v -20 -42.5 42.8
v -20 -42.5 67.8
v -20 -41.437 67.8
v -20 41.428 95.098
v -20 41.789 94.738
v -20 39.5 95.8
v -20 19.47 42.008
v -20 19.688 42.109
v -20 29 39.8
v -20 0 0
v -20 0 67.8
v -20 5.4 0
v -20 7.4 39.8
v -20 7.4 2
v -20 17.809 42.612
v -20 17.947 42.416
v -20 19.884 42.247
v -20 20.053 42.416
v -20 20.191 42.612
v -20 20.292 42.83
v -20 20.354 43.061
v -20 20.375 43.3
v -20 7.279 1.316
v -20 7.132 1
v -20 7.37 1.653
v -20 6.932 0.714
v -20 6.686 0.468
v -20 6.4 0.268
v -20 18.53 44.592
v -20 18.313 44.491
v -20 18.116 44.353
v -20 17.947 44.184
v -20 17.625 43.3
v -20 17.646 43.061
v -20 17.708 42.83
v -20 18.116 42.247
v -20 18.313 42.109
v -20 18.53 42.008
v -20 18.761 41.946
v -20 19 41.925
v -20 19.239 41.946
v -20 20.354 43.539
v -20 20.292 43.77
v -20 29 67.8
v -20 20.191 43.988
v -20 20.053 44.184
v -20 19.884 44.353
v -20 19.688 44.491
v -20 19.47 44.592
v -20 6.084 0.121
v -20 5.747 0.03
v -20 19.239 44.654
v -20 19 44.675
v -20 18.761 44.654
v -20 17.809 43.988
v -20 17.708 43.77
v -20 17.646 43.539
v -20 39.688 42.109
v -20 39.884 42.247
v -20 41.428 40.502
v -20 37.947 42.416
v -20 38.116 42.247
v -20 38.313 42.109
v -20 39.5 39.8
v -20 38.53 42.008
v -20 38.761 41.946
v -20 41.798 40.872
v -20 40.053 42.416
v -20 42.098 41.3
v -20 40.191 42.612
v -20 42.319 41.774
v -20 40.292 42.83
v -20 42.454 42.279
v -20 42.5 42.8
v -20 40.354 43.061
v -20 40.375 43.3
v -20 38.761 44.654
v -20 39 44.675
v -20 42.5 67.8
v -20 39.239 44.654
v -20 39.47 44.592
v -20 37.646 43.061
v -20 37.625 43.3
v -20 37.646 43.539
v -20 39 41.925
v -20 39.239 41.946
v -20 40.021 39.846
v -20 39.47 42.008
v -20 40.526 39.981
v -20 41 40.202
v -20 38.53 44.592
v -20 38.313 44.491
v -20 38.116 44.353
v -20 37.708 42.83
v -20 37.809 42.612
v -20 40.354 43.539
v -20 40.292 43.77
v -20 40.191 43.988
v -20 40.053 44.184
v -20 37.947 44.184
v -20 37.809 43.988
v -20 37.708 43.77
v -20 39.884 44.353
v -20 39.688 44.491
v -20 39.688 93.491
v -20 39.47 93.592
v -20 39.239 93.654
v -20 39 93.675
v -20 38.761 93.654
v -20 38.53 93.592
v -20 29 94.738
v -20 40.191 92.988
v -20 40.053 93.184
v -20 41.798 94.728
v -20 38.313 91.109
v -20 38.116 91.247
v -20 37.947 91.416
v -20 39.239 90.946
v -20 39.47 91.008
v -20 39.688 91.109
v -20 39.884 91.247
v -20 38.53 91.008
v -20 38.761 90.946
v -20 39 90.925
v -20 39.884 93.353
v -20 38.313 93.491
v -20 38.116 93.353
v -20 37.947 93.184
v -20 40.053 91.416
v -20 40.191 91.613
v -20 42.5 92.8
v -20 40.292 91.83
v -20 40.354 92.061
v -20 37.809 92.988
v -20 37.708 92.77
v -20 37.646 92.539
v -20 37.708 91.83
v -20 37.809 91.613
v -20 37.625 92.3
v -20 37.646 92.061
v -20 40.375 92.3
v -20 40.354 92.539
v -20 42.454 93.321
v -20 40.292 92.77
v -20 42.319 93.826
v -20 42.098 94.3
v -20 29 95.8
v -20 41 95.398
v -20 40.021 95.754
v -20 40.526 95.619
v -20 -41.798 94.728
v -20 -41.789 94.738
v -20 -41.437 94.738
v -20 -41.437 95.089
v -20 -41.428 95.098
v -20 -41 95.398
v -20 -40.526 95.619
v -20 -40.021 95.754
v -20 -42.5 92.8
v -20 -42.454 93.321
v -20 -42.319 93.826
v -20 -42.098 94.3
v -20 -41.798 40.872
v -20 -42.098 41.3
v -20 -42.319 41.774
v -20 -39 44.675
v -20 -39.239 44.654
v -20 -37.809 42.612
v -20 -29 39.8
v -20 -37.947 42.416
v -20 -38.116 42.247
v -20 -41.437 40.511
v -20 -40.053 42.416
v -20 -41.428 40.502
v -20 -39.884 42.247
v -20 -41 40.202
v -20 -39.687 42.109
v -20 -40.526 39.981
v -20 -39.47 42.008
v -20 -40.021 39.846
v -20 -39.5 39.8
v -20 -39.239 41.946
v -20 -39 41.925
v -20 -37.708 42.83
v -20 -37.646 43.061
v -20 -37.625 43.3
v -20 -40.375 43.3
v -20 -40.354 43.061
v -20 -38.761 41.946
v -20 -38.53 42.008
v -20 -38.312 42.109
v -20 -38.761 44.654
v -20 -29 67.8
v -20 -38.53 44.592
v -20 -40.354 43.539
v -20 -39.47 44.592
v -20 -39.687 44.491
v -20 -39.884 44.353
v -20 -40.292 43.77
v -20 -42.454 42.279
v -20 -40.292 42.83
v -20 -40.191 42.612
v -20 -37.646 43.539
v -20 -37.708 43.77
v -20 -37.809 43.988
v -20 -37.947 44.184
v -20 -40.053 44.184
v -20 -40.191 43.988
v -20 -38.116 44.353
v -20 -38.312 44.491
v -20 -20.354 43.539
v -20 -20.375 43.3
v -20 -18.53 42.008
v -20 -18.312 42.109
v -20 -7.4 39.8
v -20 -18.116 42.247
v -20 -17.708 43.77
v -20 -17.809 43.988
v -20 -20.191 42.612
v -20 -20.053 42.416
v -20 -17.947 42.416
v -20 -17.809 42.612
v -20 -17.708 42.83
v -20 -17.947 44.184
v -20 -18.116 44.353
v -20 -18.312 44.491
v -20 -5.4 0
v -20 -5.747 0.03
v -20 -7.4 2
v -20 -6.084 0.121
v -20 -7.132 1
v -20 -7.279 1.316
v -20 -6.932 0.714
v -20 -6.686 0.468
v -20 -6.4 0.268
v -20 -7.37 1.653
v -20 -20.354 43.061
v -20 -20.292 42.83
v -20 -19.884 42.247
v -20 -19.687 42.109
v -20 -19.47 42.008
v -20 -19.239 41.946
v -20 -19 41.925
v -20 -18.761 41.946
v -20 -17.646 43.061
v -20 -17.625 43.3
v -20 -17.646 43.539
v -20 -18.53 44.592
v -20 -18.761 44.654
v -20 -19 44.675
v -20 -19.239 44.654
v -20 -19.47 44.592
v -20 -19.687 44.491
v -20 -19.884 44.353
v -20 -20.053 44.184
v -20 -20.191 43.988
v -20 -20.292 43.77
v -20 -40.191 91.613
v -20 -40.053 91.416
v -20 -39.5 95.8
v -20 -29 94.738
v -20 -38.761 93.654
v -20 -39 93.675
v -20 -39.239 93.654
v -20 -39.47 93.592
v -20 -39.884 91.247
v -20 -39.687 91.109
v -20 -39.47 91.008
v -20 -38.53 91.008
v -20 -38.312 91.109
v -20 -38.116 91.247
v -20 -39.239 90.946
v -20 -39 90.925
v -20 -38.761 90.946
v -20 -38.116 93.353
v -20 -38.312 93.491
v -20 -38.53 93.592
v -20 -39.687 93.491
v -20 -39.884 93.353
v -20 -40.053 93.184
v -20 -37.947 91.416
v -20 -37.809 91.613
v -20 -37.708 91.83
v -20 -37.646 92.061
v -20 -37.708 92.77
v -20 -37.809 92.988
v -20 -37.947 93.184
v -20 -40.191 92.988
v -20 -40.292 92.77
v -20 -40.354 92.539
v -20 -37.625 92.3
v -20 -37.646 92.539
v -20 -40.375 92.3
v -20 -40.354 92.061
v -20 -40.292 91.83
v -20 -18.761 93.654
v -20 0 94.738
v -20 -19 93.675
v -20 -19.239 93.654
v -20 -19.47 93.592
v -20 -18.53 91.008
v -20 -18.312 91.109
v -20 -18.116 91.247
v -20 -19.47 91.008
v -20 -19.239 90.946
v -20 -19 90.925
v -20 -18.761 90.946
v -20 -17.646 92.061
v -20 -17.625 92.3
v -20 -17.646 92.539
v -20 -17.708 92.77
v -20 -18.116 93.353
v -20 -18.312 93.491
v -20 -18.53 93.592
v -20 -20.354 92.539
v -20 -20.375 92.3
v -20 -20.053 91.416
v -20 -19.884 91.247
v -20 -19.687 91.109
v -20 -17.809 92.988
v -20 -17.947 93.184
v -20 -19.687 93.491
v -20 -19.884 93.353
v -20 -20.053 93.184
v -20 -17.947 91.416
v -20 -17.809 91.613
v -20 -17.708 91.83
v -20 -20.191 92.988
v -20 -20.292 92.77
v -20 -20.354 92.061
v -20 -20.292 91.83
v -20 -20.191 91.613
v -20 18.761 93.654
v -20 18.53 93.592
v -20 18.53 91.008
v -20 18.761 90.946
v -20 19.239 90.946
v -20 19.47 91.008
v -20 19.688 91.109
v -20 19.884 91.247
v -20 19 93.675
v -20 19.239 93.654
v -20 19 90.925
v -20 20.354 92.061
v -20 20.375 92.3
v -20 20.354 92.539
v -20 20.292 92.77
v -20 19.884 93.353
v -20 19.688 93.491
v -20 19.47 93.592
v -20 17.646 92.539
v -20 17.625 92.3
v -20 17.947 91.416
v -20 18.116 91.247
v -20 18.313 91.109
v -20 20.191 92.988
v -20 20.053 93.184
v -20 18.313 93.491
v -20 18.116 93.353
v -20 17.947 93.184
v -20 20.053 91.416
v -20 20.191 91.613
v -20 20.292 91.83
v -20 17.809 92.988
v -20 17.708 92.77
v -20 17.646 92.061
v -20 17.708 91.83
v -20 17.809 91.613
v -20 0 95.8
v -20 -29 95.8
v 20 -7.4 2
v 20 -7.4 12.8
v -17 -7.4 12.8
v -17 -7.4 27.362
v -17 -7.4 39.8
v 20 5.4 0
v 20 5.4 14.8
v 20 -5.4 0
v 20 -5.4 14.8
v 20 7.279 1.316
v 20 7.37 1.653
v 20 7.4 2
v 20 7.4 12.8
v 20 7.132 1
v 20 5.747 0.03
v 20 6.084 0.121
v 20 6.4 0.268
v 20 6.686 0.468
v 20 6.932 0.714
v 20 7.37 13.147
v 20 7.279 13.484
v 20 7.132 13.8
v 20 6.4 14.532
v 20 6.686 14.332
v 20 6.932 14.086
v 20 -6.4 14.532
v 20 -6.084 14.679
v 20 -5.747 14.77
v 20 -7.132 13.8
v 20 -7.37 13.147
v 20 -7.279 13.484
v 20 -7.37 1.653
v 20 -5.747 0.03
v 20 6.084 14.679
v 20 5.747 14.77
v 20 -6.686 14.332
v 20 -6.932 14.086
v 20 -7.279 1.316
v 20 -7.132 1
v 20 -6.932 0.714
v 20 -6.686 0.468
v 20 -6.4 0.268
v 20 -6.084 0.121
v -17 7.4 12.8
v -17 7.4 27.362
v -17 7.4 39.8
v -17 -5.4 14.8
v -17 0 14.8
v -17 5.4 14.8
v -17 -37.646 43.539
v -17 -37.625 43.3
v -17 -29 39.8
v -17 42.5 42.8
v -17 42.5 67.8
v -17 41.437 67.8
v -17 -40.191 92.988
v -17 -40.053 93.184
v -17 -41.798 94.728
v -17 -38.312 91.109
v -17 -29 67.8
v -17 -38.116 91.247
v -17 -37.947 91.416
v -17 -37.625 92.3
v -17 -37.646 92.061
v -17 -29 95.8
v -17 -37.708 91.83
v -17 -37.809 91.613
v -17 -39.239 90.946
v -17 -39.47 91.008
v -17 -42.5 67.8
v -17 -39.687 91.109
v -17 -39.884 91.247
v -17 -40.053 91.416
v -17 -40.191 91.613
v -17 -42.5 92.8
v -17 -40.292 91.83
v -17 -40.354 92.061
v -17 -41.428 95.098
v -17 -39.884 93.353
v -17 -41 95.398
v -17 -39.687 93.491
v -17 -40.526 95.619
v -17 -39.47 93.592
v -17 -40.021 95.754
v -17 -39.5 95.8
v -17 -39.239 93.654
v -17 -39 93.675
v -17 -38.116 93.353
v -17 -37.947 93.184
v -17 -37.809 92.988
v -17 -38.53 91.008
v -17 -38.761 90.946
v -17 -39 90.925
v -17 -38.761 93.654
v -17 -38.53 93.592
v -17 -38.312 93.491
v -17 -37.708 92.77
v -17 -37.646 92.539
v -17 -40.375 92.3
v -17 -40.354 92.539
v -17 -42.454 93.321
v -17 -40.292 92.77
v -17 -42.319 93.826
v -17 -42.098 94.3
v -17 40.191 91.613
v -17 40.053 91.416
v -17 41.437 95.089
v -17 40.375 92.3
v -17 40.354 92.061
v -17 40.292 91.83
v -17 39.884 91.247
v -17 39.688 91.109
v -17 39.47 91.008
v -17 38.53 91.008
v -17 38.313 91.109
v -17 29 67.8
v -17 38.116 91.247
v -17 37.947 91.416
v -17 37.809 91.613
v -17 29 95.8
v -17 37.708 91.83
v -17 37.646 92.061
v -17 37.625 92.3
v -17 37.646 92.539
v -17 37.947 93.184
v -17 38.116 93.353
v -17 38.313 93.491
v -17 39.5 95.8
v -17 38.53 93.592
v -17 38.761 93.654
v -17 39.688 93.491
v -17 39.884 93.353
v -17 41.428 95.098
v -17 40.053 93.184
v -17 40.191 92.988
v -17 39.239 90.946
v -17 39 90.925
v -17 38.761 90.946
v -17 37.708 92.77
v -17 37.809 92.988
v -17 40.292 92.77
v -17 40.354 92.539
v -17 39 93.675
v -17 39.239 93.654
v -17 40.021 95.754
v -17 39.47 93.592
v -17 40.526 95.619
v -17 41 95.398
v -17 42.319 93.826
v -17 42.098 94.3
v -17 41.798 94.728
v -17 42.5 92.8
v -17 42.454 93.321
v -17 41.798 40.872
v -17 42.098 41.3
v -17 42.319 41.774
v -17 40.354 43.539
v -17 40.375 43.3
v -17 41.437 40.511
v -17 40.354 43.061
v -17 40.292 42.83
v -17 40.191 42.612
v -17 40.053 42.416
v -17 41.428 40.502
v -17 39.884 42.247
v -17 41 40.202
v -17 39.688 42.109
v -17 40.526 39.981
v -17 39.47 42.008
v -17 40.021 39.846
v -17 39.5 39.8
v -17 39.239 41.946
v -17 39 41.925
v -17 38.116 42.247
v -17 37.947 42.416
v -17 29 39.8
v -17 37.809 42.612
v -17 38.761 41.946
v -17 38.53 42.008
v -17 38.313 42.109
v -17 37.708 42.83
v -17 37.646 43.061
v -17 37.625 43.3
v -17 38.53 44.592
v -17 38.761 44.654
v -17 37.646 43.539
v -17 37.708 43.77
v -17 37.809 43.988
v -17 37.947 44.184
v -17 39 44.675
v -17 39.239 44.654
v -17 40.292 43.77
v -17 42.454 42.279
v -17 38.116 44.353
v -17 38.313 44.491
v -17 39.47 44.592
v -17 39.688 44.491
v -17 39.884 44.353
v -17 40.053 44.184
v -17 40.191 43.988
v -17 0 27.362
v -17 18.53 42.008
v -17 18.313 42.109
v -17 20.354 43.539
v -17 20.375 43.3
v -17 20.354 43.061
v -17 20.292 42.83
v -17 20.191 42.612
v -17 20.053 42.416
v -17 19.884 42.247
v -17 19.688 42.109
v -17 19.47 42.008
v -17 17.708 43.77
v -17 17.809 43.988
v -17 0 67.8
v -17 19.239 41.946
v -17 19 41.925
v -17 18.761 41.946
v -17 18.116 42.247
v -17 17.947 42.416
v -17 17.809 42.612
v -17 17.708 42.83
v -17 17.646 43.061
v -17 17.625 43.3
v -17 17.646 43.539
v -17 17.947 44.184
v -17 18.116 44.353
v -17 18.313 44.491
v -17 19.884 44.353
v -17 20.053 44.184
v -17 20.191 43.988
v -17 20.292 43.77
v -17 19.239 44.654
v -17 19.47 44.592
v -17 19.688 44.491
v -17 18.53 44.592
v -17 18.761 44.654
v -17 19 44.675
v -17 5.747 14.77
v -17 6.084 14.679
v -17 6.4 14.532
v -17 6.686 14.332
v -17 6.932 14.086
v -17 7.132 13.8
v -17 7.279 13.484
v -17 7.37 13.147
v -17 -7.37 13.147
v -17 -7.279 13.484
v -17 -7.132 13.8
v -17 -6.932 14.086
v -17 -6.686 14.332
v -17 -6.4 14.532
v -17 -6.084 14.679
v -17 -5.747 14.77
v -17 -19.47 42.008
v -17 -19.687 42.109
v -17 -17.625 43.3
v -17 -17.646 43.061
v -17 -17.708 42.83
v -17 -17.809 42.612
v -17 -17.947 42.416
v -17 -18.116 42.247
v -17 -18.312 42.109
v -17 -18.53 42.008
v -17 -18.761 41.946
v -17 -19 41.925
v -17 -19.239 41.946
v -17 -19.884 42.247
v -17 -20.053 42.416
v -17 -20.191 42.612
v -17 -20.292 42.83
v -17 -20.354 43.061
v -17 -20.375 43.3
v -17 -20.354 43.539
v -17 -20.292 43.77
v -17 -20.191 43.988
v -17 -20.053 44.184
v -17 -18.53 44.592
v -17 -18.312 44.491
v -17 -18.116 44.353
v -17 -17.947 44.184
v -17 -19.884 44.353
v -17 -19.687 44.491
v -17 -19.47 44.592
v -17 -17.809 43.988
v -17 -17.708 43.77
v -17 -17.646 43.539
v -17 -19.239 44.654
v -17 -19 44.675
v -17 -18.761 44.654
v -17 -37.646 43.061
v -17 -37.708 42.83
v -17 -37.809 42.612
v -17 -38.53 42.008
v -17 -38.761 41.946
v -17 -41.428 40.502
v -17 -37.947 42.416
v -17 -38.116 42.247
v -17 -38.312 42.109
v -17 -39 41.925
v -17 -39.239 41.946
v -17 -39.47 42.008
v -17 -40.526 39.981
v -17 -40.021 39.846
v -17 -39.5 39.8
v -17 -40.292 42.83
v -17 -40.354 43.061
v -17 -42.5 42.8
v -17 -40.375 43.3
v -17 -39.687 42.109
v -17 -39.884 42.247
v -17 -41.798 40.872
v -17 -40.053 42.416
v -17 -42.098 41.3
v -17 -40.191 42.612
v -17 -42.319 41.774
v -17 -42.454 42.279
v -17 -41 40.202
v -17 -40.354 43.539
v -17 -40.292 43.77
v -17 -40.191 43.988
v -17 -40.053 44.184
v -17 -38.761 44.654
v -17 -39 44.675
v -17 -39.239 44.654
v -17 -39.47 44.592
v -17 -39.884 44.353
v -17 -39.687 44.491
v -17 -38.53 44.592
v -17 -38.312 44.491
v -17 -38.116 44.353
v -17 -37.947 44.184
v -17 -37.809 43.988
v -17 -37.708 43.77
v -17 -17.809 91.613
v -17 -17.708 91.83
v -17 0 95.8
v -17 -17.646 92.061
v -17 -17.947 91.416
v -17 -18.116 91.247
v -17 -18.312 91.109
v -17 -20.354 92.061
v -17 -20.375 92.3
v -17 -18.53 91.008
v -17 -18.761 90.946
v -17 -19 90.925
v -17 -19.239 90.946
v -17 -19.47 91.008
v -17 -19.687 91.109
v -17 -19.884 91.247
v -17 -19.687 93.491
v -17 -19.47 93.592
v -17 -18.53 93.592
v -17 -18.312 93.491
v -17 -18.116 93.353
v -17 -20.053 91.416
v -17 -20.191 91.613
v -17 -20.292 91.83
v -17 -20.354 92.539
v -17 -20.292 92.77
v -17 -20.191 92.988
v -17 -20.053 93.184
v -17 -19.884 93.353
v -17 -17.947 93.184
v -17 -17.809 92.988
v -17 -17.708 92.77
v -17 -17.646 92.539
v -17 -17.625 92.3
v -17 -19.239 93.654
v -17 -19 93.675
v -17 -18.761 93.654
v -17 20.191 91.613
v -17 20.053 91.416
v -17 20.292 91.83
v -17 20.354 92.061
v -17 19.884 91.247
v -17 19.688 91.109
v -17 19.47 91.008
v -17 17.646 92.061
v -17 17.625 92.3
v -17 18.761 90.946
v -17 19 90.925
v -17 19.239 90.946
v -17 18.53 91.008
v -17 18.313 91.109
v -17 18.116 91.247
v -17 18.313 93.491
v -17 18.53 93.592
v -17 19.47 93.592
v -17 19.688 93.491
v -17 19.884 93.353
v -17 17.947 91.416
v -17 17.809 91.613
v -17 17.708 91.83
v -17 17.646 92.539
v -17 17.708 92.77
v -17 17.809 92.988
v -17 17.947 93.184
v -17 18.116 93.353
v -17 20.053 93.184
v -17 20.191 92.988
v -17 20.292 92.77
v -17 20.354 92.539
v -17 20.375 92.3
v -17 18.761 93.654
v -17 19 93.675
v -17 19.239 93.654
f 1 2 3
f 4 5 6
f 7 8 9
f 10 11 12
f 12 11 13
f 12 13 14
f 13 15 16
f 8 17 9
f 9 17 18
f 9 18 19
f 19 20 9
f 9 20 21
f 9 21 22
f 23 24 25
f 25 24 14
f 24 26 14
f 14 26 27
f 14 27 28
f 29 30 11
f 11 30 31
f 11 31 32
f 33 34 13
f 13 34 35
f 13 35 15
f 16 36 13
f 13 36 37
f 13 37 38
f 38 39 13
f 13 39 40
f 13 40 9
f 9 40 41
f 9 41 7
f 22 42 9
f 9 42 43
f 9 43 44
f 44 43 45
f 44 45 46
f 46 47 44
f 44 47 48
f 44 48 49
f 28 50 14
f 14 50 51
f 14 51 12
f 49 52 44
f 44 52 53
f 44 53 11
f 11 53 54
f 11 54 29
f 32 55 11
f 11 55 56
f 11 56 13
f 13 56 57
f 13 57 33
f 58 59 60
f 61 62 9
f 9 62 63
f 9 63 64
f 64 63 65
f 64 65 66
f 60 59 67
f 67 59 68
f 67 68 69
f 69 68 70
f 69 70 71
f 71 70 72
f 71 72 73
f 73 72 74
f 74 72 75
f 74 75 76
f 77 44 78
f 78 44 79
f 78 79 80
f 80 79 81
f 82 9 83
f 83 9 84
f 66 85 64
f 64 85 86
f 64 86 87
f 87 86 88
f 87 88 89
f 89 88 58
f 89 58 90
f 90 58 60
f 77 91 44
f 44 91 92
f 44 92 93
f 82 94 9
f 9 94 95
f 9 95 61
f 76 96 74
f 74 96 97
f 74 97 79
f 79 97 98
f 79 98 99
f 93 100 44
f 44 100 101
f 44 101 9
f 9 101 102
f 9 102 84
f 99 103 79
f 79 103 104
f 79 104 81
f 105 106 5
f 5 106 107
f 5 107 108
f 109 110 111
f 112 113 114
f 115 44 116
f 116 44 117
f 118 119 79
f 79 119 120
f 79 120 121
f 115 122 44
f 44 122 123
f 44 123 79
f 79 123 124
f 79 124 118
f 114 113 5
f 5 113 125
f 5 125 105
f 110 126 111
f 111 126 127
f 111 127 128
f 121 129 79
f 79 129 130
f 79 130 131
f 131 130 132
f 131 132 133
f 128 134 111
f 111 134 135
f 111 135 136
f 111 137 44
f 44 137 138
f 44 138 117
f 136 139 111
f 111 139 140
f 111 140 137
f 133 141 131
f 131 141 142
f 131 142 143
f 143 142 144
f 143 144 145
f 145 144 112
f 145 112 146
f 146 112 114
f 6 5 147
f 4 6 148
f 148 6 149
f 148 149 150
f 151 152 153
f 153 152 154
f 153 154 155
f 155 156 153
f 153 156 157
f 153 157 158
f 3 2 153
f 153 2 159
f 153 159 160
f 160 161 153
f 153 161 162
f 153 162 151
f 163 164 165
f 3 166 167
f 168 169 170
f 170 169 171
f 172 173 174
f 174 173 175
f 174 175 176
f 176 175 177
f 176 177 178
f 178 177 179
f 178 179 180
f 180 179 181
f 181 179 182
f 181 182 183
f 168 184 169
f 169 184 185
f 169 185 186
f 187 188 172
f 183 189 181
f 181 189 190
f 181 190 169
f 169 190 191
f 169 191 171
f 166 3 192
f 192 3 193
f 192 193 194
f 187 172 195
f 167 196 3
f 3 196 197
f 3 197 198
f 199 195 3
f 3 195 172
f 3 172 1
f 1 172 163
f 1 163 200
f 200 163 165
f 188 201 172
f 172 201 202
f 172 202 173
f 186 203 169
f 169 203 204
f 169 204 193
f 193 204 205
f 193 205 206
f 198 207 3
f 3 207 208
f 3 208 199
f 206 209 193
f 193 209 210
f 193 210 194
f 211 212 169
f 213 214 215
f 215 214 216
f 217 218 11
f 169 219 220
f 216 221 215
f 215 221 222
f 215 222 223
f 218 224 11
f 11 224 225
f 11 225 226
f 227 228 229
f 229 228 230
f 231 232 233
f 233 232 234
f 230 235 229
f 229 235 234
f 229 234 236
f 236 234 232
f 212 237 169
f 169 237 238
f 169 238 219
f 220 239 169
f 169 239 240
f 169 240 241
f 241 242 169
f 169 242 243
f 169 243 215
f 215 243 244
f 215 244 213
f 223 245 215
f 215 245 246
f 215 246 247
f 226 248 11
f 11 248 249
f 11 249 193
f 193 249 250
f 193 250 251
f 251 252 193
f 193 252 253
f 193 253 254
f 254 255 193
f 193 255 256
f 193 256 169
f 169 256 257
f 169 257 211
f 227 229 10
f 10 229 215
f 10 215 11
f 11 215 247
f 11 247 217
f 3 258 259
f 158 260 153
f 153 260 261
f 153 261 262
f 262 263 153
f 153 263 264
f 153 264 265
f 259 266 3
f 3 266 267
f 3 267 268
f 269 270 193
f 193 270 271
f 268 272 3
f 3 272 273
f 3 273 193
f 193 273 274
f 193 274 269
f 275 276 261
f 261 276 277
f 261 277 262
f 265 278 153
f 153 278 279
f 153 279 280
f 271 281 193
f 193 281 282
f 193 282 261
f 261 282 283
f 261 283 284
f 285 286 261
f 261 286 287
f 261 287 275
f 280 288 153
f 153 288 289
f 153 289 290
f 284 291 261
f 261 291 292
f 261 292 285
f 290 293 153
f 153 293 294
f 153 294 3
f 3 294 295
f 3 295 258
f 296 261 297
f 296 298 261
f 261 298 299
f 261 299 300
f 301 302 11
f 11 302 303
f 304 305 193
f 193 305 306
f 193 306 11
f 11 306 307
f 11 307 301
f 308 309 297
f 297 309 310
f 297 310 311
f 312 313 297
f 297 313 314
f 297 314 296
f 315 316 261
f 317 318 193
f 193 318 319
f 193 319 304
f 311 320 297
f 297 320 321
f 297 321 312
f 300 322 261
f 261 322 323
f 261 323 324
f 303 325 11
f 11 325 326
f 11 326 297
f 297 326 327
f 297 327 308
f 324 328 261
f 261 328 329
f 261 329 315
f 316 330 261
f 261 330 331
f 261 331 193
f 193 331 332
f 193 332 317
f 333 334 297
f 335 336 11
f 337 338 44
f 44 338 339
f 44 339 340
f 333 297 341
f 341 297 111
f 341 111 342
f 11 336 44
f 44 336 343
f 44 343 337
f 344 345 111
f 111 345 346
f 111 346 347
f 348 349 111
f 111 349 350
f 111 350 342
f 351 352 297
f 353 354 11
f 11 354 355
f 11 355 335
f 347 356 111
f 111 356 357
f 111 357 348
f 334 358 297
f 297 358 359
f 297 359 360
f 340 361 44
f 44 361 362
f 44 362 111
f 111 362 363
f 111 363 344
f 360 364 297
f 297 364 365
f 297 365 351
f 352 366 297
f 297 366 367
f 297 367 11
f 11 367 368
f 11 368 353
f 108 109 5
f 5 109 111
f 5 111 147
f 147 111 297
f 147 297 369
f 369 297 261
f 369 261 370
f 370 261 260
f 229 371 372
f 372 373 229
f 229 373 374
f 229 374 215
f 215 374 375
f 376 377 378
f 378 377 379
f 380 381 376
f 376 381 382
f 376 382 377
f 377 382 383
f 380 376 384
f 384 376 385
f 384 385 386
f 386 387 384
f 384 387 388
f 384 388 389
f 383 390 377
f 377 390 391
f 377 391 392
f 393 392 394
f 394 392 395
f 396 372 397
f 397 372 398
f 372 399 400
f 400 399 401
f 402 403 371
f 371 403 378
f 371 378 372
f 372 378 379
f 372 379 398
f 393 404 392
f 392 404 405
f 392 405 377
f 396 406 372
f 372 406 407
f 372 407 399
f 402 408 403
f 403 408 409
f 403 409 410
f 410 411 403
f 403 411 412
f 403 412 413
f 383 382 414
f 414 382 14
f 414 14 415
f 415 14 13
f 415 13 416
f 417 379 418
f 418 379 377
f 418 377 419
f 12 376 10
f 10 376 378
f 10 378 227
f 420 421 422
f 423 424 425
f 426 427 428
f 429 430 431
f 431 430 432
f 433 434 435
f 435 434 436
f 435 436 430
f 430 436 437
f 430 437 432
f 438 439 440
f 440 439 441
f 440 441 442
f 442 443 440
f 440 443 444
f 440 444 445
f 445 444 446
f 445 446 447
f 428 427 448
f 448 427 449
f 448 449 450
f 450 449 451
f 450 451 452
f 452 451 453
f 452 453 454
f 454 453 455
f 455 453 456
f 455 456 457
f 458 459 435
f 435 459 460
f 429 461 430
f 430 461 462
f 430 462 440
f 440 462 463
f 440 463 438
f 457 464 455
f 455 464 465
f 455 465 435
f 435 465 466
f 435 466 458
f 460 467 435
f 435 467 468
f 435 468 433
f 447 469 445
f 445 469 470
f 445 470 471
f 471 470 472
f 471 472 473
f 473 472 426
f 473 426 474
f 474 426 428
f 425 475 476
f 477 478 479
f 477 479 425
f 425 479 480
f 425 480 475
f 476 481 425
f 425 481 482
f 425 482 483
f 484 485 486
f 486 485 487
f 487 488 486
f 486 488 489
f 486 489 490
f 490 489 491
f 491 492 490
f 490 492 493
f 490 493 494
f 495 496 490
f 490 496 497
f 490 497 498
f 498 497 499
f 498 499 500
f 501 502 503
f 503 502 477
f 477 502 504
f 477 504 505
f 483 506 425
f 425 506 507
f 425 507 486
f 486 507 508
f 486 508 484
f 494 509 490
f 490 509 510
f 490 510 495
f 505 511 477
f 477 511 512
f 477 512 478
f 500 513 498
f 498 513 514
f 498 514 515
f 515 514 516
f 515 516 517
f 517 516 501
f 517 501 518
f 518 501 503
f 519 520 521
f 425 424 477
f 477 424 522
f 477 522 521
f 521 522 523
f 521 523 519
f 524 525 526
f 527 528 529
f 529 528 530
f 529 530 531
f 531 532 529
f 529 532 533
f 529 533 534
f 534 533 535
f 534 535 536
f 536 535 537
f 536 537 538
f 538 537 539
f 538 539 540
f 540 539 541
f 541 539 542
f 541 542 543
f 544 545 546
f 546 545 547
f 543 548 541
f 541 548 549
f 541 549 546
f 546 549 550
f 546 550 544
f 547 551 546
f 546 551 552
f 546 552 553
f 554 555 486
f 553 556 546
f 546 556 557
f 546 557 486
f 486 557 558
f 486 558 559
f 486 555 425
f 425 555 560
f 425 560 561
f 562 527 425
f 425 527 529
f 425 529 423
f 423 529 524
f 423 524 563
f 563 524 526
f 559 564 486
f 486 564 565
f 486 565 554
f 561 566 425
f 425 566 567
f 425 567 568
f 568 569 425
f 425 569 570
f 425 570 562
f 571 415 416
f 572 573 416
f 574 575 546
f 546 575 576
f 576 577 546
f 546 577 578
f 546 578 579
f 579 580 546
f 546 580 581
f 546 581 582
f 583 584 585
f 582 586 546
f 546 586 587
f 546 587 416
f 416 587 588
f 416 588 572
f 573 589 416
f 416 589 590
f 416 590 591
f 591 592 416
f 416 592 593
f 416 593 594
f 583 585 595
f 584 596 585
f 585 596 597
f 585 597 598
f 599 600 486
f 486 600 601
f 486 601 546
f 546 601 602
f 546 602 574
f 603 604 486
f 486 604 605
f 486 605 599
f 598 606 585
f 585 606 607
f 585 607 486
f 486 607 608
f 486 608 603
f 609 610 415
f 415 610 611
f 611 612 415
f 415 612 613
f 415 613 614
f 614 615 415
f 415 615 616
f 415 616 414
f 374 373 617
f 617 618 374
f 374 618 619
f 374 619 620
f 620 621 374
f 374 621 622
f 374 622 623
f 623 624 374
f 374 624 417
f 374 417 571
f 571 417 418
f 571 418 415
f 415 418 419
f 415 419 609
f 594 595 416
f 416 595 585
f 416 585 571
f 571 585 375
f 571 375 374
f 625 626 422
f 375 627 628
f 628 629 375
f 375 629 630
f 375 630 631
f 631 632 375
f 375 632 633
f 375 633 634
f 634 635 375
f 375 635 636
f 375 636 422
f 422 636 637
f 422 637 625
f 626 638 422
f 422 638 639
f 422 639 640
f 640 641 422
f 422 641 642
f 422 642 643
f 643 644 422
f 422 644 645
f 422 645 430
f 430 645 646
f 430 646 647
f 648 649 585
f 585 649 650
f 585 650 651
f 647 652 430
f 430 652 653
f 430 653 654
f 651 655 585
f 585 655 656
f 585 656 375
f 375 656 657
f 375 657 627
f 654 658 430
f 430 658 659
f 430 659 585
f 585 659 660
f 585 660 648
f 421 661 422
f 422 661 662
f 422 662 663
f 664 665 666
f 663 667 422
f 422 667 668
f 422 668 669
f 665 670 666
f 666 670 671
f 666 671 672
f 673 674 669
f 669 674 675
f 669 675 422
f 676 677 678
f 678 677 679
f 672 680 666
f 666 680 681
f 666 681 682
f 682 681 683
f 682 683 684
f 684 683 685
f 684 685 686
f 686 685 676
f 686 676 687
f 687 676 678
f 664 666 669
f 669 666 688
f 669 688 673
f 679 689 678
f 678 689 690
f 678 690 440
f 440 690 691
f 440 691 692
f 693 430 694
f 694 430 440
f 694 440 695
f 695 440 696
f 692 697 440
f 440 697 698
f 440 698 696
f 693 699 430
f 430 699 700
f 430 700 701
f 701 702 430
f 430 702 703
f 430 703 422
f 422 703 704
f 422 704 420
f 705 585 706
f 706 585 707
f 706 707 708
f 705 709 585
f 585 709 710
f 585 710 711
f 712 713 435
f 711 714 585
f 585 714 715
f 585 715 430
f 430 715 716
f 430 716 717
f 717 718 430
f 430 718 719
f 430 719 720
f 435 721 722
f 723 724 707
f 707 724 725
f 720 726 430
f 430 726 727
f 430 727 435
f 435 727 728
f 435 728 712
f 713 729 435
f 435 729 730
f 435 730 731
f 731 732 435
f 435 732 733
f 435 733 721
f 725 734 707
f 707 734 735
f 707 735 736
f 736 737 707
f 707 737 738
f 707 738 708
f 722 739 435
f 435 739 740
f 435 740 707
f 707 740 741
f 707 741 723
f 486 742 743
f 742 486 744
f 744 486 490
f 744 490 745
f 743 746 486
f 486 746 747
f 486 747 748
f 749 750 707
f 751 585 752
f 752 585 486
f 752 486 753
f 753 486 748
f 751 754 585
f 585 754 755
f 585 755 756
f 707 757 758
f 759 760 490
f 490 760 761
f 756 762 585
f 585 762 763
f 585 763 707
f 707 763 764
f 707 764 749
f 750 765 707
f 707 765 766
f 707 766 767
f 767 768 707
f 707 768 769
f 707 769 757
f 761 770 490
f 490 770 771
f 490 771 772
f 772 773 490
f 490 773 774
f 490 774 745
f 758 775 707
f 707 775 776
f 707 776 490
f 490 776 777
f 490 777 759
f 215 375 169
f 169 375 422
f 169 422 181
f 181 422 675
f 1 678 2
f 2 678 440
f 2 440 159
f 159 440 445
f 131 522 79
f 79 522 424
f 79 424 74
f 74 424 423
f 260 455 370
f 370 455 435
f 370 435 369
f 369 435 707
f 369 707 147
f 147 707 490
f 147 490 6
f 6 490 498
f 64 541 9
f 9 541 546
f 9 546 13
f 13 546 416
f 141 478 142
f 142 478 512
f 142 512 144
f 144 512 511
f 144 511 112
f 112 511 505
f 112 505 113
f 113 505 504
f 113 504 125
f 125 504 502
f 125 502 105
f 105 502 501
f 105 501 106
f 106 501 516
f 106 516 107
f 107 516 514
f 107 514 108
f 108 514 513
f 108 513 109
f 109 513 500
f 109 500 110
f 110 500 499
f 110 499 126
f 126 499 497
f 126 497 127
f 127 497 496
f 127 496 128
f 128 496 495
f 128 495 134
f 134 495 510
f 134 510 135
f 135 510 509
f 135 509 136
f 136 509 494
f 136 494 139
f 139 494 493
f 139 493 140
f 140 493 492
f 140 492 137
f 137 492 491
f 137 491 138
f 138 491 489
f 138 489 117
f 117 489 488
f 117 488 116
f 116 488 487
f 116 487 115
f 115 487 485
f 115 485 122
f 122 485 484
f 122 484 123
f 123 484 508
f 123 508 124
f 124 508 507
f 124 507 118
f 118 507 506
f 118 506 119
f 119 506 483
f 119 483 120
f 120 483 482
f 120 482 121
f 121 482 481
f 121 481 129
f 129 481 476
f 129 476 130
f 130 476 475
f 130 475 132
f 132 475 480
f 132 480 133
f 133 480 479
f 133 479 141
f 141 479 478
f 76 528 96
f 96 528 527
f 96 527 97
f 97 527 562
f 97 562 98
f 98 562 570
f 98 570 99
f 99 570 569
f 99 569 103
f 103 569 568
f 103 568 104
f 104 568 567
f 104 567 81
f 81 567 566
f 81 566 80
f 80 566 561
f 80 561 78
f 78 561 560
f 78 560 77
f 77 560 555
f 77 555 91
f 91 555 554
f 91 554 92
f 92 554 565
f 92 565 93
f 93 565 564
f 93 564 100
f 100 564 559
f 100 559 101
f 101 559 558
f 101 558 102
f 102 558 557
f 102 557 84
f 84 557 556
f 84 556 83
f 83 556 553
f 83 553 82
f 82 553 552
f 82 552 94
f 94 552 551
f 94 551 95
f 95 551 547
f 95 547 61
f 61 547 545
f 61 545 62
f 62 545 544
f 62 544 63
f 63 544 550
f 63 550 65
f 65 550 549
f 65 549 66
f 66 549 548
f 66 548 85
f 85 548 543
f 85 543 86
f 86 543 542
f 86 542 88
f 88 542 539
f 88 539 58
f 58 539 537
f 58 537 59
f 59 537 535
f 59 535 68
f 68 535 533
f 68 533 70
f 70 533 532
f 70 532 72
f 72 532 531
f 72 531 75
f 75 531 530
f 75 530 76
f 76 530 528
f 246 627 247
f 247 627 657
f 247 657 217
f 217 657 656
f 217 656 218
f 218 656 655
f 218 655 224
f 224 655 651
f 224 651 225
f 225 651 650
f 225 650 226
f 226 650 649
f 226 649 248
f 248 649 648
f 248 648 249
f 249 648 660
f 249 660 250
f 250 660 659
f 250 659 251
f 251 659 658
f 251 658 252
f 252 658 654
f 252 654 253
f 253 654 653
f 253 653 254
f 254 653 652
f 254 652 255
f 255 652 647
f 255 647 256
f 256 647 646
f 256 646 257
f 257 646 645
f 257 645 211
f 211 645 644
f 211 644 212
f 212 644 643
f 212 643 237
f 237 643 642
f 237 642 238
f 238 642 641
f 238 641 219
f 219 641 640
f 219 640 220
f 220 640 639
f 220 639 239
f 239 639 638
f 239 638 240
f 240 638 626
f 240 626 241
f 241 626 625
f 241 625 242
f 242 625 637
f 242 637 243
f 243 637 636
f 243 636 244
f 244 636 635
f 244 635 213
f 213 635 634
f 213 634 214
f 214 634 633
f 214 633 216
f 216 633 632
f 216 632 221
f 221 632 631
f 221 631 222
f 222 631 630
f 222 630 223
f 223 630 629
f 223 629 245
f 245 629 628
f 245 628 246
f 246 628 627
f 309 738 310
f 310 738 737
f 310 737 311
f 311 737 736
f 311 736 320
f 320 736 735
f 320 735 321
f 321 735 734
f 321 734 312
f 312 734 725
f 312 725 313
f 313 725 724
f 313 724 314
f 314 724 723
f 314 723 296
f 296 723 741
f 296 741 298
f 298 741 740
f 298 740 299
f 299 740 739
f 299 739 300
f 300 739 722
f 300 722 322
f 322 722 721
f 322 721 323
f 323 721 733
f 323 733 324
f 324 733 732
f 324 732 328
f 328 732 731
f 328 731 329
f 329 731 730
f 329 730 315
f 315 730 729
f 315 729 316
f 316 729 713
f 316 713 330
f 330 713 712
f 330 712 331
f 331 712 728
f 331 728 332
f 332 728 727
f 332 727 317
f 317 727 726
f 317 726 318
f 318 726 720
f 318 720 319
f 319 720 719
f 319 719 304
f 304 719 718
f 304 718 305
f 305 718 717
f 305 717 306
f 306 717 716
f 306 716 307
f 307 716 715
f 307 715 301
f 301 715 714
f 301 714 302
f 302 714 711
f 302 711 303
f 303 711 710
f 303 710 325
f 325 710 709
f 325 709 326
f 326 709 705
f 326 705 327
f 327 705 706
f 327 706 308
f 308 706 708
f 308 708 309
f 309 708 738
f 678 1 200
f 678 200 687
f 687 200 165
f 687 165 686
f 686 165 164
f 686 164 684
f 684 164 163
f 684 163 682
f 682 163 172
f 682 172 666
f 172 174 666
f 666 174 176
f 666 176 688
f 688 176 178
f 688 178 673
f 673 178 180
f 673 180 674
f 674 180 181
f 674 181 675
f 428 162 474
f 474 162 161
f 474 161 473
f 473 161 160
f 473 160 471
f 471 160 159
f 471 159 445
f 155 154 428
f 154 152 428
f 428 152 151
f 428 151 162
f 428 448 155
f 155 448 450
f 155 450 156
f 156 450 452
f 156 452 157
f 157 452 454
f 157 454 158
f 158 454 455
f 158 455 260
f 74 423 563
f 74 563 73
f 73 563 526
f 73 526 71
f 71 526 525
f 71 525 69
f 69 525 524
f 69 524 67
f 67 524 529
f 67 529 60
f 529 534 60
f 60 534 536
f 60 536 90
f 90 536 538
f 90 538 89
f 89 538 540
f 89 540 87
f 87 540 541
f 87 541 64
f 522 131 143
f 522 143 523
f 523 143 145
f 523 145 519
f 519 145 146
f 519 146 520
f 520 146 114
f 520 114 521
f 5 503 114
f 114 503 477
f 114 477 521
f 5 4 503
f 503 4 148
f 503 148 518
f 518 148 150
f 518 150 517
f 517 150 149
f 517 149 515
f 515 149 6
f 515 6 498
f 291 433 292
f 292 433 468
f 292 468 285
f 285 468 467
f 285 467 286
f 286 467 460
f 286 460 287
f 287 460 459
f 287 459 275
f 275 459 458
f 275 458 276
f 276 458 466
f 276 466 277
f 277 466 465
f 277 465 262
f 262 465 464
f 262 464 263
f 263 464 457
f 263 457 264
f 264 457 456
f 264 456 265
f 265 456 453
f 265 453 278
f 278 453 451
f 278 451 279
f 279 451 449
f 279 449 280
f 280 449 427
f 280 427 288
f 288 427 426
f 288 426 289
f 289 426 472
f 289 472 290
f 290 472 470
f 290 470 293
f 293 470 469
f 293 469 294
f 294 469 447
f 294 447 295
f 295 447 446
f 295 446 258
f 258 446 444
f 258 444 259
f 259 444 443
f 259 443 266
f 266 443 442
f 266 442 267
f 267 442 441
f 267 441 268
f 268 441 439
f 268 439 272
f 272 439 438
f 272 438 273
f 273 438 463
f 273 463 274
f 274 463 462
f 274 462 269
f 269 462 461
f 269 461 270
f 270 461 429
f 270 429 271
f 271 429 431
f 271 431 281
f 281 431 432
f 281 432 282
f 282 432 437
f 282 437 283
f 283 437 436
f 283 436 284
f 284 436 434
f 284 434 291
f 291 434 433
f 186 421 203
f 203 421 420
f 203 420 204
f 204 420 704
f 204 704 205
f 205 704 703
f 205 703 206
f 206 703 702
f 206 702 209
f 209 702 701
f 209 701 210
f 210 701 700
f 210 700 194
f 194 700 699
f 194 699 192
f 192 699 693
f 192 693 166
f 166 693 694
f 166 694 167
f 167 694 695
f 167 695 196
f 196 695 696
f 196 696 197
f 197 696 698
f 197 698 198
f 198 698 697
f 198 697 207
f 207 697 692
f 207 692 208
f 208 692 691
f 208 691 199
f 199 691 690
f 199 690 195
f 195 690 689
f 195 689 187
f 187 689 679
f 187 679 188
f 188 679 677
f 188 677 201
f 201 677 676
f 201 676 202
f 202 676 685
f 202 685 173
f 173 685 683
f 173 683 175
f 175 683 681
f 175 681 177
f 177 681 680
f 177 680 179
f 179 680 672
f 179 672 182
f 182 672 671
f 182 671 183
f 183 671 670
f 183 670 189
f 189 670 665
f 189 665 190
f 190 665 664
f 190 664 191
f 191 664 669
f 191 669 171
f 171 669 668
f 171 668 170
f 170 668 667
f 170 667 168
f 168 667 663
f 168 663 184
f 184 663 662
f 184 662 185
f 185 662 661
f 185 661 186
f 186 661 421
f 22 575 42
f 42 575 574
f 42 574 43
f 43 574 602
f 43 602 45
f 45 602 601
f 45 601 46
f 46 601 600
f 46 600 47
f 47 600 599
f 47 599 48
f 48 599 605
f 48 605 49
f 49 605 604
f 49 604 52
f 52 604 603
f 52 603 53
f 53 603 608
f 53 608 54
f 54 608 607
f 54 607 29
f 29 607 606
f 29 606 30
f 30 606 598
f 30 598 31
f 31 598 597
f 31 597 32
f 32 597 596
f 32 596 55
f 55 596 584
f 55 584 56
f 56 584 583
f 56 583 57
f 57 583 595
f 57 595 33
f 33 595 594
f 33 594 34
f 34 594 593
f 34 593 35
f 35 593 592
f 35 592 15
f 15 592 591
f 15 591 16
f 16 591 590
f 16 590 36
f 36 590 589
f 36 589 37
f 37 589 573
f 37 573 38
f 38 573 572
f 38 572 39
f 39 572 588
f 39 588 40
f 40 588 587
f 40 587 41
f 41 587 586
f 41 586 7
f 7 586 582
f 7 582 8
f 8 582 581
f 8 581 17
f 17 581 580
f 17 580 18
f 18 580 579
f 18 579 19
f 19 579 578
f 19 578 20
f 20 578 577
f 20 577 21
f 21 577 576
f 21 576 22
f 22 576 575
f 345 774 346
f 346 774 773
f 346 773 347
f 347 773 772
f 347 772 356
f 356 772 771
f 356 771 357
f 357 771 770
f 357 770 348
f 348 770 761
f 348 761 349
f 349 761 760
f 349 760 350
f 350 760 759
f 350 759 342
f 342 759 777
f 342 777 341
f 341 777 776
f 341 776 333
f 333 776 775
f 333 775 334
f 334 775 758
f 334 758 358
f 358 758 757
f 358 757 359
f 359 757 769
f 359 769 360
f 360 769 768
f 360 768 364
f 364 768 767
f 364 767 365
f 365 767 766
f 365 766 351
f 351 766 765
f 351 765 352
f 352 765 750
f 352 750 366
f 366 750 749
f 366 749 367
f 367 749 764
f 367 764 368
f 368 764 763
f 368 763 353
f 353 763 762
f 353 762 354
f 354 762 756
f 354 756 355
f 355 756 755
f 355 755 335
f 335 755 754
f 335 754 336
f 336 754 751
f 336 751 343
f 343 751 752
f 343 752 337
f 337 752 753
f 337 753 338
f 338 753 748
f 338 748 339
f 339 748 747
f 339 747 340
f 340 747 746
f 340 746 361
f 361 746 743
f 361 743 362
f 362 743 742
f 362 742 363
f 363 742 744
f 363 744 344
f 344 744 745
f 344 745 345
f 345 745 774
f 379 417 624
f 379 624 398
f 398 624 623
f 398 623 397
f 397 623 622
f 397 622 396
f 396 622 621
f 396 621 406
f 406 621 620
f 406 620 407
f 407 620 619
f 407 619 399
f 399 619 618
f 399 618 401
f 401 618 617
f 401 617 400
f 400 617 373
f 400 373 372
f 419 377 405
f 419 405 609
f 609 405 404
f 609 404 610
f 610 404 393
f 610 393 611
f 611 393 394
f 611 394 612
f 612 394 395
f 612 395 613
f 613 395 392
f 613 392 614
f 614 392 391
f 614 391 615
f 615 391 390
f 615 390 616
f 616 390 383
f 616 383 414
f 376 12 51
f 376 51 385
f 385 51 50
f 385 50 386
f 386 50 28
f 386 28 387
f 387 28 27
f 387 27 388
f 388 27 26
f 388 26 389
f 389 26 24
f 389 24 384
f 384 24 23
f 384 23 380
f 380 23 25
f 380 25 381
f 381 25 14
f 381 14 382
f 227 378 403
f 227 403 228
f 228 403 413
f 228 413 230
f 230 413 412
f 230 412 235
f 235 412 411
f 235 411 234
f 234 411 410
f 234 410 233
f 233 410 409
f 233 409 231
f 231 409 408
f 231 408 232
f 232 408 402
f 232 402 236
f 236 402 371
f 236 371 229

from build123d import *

# Parameters (mm, degrees)
SKETCH1_W           = 40
SKETCH1_H           = 14.8
BOSS_EXTRUDE1_DEPTH = 14.8
SKETCH3_W           = 3
SKETCH3_H           = 14.8
BOSS_EXTRUDE3_DEPTH = 25
SKETCH5_W           = 3
SKETCH5_H           = 85
BOSS_EXTRUDE4_DEPTH = 56
SKETCH6_R           = 1.375
CUT_EXTRUDE1_DEPTH  = 5
FILLET2_R           = 3
FILLET3_R           = 2


with BuildPart() as part:
    # Sketch1 → Boss-Extrude1 (new body)
    with BuildSketch(Plane.XY):
        Rectangle(SKETCH1_W, SKETCH1_H)
    extrude(amount=BOSS_EXTRUDE1_DEPTH)

    # Sketch3 → Boss-Extrude3 (add)
    with BuildSketch(Plane.XY.offset(14.8)):
        with Locations((-18.5, 0)):
            Rectangle(SKETCH3_W, SKETCH3_H)
    extrude(amount=BOSS_EXTRUDE3_DEPTH)

    # Sketch5 → Boss-Extrude4 (add)
    with BuildSketch(Plane.XY.offset(39.8)):
        with Locations((-18.5, 0)):
            Rectangle(SKETCH5_W, SKETCH5_H)
    extrude(amount=BOSS_EXTRUDE4_DEPTH)

    # Sketch6 → Cut-Extrude1 (cut)
    with BuildSketch(Plane(origin=(-17, 0, 0), x_dir=(0, 0, -1), z_dir=(1, 0, 0))):
        with Locations((-92.3, 39)):
            Circle(SKETCH6_R)
        with Locations((-43.3, 39)):
            Circle(SKETCH6_R)
        with Locations((-43.3, -19)):
            Circle(SKETCH6_R)
        with Locations((-92.3, -19)):
            Circle(SKETCH6_R)
    cut_extrude1 = extrude(amount=-CUT_EXTRUDE1_DEPTH, mode=Mode.SUBTRACT)

    # Fillet2
    fillet2_edges = [part.edges().sort_by_distance(p)[0] for p in [
        (-18.5, -42.5, 39.8),
        (-18.5, 42.5, 39.8),
        (-18.5, -42.5, 95.8),
        (-18.5, 42.5, 95.8),
    ]]
    fillet(fillet2_edges, radius=FILLET2_R)

    # Mirror1: Cut-Extrude1 across plane
    add(cut_extrude1.mirror(Plane.ZX), mode=Mode.SUBTRACT)

    # Fillet3
    fillet3_edges = [part.edges().sort_by_distance(p)[0] for p in [
        (1.5, 7.4, 14.8),
        (1.5, -7.4, 14.8),
        (0, 7.4, 0),
        (0, -7.4, 0),
    ]]
    fillet(fillet3_edges, radius=FILLET3_R)


solid = part.part
